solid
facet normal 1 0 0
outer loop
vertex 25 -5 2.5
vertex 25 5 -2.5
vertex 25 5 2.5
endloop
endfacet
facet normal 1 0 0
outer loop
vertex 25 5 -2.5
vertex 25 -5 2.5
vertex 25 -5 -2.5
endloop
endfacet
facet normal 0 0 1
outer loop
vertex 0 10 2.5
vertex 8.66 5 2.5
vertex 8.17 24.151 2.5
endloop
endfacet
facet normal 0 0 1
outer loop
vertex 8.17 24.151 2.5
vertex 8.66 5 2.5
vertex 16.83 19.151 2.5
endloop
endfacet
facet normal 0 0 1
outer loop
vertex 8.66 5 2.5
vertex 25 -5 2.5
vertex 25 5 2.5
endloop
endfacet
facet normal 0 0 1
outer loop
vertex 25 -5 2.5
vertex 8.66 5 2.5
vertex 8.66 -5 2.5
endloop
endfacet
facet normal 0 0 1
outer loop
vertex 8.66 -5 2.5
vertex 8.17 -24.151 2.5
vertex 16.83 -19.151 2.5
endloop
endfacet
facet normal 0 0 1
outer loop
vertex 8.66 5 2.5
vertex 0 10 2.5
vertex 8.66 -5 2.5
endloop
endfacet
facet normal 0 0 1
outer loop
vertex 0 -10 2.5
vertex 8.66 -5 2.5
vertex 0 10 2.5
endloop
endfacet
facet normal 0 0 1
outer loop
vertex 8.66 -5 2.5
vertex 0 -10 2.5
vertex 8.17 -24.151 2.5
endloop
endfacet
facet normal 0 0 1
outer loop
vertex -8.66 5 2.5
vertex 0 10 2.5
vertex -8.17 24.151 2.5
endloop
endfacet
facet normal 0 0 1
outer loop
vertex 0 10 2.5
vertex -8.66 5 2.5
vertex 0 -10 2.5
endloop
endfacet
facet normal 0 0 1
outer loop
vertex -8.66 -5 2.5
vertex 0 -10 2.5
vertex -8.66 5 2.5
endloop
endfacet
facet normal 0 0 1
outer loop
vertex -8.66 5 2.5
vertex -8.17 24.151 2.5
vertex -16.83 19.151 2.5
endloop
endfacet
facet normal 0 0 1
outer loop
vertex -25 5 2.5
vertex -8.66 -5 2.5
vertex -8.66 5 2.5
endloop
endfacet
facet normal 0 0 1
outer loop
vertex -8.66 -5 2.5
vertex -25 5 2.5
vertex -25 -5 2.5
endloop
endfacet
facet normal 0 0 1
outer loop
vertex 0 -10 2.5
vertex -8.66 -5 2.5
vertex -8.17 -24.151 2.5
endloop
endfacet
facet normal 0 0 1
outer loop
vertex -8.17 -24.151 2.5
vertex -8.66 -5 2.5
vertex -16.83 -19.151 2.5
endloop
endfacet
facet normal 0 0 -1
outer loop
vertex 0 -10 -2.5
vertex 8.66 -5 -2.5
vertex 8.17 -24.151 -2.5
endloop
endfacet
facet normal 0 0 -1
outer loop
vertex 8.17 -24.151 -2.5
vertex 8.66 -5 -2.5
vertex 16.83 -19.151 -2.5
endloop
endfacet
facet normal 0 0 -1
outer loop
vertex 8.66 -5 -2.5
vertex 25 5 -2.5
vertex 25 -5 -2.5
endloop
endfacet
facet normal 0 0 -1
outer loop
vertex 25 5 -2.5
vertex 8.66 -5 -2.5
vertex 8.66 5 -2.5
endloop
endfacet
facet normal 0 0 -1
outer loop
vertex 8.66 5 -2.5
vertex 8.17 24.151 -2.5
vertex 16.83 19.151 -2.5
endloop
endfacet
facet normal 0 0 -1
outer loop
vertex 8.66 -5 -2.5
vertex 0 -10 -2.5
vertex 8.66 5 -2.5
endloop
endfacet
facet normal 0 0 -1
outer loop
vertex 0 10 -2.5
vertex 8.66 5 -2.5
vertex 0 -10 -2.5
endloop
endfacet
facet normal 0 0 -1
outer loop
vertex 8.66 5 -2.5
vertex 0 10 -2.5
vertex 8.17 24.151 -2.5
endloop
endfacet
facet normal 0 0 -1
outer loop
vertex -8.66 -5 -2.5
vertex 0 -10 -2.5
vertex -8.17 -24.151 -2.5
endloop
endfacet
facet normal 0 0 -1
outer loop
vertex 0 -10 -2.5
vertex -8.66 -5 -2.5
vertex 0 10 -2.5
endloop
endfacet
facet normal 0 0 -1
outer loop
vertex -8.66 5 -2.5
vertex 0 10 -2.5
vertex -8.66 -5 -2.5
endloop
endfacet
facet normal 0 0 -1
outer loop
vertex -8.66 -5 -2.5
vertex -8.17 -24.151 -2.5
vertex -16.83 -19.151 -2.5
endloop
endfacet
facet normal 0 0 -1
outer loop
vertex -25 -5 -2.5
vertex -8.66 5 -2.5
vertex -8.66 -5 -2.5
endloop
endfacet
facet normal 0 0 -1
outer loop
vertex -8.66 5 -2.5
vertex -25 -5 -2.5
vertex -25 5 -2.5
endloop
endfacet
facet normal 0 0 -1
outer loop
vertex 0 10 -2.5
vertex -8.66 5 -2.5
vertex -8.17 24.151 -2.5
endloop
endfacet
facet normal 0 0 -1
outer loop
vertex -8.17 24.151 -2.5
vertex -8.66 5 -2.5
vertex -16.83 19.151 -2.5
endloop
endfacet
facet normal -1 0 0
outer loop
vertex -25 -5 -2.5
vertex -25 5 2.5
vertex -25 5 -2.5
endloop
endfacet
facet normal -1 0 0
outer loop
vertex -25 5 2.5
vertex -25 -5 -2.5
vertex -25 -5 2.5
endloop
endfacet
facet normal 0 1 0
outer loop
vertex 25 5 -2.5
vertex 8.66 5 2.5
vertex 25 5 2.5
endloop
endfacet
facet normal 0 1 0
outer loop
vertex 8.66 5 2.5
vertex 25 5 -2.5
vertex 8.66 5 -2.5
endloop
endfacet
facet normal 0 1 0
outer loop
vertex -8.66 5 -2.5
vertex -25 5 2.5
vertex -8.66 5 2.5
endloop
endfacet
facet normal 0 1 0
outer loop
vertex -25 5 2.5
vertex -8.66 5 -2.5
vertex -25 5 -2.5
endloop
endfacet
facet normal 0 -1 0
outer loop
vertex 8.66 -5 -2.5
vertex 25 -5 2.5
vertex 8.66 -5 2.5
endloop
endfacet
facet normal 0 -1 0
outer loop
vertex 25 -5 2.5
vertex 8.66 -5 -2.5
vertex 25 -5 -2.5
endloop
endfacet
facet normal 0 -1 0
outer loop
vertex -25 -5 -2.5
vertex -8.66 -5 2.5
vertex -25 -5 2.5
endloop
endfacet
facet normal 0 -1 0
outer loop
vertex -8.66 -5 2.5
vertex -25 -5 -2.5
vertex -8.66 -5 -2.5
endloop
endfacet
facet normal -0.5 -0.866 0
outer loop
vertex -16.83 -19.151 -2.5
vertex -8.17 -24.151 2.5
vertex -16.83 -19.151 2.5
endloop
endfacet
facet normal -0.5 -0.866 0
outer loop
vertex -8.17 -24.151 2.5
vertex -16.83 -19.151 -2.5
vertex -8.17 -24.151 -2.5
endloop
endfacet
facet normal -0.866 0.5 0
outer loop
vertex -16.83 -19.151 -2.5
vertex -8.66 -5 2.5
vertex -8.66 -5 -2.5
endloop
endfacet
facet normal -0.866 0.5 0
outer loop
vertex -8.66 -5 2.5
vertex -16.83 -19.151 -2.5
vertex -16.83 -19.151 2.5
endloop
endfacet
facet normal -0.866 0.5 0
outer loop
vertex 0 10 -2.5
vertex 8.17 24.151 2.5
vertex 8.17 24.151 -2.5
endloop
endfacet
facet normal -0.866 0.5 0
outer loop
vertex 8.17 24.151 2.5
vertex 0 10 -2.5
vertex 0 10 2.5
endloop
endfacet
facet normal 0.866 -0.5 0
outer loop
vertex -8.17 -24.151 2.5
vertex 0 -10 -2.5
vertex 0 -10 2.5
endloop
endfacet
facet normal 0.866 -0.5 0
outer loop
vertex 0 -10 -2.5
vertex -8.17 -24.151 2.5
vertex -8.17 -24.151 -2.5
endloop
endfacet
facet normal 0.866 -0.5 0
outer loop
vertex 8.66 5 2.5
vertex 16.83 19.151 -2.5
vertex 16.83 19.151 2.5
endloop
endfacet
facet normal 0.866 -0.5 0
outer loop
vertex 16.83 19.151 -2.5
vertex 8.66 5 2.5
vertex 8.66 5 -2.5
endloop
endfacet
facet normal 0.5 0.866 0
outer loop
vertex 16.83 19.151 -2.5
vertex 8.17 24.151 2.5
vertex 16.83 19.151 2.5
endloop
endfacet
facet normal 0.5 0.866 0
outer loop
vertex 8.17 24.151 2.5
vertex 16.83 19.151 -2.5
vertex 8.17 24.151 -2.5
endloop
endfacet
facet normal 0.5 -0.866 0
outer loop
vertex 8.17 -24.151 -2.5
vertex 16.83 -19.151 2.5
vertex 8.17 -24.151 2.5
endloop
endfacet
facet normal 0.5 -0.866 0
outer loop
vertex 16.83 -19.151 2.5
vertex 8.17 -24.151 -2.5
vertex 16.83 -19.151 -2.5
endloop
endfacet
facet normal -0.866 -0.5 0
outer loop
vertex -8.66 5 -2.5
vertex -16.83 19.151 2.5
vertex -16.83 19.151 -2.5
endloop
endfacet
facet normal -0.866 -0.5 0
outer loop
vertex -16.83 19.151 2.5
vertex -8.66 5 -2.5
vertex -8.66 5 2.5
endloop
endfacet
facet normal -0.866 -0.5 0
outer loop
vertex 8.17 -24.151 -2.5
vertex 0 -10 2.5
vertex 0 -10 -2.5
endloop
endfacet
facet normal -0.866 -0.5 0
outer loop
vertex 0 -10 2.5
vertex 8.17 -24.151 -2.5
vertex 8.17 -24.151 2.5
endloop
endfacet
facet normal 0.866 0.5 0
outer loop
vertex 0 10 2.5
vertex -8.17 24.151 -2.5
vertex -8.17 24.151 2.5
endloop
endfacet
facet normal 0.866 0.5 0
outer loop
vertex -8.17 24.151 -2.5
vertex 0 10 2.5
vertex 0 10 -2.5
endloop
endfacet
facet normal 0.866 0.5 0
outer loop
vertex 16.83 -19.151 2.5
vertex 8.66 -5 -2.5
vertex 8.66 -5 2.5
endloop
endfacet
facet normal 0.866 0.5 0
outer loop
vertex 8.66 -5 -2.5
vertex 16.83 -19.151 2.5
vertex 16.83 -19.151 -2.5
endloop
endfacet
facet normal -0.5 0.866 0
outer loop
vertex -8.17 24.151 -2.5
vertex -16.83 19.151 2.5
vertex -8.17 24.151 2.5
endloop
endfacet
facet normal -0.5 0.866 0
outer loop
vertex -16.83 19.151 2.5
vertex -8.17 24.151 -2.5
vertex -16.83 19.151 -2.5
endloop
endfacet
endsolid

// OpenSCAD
// Parameters for the rectangular bar
bar_length = 50;  // Length of the rectangular bar
bar_width = 10;   // Width of the rectangular bar
bar_height = 5;   // Height of the rectangular bar

// Function to create a single rectangular bar
module rectangular_bar() {
    cube([bar_length, bar_width, bar_height], center = true);
}

// Main assembly
module assembly() {
    for (i = [0:5]) {
        rotate([0, 0, i * 60])  // Rotate each bar by 60 degrees around the Z-axis
        translate([0, 0, 0])    // Position the bars at the origin
        rectangular_bar();
    }
}

// Call the assembly module to render the model
assembly();
